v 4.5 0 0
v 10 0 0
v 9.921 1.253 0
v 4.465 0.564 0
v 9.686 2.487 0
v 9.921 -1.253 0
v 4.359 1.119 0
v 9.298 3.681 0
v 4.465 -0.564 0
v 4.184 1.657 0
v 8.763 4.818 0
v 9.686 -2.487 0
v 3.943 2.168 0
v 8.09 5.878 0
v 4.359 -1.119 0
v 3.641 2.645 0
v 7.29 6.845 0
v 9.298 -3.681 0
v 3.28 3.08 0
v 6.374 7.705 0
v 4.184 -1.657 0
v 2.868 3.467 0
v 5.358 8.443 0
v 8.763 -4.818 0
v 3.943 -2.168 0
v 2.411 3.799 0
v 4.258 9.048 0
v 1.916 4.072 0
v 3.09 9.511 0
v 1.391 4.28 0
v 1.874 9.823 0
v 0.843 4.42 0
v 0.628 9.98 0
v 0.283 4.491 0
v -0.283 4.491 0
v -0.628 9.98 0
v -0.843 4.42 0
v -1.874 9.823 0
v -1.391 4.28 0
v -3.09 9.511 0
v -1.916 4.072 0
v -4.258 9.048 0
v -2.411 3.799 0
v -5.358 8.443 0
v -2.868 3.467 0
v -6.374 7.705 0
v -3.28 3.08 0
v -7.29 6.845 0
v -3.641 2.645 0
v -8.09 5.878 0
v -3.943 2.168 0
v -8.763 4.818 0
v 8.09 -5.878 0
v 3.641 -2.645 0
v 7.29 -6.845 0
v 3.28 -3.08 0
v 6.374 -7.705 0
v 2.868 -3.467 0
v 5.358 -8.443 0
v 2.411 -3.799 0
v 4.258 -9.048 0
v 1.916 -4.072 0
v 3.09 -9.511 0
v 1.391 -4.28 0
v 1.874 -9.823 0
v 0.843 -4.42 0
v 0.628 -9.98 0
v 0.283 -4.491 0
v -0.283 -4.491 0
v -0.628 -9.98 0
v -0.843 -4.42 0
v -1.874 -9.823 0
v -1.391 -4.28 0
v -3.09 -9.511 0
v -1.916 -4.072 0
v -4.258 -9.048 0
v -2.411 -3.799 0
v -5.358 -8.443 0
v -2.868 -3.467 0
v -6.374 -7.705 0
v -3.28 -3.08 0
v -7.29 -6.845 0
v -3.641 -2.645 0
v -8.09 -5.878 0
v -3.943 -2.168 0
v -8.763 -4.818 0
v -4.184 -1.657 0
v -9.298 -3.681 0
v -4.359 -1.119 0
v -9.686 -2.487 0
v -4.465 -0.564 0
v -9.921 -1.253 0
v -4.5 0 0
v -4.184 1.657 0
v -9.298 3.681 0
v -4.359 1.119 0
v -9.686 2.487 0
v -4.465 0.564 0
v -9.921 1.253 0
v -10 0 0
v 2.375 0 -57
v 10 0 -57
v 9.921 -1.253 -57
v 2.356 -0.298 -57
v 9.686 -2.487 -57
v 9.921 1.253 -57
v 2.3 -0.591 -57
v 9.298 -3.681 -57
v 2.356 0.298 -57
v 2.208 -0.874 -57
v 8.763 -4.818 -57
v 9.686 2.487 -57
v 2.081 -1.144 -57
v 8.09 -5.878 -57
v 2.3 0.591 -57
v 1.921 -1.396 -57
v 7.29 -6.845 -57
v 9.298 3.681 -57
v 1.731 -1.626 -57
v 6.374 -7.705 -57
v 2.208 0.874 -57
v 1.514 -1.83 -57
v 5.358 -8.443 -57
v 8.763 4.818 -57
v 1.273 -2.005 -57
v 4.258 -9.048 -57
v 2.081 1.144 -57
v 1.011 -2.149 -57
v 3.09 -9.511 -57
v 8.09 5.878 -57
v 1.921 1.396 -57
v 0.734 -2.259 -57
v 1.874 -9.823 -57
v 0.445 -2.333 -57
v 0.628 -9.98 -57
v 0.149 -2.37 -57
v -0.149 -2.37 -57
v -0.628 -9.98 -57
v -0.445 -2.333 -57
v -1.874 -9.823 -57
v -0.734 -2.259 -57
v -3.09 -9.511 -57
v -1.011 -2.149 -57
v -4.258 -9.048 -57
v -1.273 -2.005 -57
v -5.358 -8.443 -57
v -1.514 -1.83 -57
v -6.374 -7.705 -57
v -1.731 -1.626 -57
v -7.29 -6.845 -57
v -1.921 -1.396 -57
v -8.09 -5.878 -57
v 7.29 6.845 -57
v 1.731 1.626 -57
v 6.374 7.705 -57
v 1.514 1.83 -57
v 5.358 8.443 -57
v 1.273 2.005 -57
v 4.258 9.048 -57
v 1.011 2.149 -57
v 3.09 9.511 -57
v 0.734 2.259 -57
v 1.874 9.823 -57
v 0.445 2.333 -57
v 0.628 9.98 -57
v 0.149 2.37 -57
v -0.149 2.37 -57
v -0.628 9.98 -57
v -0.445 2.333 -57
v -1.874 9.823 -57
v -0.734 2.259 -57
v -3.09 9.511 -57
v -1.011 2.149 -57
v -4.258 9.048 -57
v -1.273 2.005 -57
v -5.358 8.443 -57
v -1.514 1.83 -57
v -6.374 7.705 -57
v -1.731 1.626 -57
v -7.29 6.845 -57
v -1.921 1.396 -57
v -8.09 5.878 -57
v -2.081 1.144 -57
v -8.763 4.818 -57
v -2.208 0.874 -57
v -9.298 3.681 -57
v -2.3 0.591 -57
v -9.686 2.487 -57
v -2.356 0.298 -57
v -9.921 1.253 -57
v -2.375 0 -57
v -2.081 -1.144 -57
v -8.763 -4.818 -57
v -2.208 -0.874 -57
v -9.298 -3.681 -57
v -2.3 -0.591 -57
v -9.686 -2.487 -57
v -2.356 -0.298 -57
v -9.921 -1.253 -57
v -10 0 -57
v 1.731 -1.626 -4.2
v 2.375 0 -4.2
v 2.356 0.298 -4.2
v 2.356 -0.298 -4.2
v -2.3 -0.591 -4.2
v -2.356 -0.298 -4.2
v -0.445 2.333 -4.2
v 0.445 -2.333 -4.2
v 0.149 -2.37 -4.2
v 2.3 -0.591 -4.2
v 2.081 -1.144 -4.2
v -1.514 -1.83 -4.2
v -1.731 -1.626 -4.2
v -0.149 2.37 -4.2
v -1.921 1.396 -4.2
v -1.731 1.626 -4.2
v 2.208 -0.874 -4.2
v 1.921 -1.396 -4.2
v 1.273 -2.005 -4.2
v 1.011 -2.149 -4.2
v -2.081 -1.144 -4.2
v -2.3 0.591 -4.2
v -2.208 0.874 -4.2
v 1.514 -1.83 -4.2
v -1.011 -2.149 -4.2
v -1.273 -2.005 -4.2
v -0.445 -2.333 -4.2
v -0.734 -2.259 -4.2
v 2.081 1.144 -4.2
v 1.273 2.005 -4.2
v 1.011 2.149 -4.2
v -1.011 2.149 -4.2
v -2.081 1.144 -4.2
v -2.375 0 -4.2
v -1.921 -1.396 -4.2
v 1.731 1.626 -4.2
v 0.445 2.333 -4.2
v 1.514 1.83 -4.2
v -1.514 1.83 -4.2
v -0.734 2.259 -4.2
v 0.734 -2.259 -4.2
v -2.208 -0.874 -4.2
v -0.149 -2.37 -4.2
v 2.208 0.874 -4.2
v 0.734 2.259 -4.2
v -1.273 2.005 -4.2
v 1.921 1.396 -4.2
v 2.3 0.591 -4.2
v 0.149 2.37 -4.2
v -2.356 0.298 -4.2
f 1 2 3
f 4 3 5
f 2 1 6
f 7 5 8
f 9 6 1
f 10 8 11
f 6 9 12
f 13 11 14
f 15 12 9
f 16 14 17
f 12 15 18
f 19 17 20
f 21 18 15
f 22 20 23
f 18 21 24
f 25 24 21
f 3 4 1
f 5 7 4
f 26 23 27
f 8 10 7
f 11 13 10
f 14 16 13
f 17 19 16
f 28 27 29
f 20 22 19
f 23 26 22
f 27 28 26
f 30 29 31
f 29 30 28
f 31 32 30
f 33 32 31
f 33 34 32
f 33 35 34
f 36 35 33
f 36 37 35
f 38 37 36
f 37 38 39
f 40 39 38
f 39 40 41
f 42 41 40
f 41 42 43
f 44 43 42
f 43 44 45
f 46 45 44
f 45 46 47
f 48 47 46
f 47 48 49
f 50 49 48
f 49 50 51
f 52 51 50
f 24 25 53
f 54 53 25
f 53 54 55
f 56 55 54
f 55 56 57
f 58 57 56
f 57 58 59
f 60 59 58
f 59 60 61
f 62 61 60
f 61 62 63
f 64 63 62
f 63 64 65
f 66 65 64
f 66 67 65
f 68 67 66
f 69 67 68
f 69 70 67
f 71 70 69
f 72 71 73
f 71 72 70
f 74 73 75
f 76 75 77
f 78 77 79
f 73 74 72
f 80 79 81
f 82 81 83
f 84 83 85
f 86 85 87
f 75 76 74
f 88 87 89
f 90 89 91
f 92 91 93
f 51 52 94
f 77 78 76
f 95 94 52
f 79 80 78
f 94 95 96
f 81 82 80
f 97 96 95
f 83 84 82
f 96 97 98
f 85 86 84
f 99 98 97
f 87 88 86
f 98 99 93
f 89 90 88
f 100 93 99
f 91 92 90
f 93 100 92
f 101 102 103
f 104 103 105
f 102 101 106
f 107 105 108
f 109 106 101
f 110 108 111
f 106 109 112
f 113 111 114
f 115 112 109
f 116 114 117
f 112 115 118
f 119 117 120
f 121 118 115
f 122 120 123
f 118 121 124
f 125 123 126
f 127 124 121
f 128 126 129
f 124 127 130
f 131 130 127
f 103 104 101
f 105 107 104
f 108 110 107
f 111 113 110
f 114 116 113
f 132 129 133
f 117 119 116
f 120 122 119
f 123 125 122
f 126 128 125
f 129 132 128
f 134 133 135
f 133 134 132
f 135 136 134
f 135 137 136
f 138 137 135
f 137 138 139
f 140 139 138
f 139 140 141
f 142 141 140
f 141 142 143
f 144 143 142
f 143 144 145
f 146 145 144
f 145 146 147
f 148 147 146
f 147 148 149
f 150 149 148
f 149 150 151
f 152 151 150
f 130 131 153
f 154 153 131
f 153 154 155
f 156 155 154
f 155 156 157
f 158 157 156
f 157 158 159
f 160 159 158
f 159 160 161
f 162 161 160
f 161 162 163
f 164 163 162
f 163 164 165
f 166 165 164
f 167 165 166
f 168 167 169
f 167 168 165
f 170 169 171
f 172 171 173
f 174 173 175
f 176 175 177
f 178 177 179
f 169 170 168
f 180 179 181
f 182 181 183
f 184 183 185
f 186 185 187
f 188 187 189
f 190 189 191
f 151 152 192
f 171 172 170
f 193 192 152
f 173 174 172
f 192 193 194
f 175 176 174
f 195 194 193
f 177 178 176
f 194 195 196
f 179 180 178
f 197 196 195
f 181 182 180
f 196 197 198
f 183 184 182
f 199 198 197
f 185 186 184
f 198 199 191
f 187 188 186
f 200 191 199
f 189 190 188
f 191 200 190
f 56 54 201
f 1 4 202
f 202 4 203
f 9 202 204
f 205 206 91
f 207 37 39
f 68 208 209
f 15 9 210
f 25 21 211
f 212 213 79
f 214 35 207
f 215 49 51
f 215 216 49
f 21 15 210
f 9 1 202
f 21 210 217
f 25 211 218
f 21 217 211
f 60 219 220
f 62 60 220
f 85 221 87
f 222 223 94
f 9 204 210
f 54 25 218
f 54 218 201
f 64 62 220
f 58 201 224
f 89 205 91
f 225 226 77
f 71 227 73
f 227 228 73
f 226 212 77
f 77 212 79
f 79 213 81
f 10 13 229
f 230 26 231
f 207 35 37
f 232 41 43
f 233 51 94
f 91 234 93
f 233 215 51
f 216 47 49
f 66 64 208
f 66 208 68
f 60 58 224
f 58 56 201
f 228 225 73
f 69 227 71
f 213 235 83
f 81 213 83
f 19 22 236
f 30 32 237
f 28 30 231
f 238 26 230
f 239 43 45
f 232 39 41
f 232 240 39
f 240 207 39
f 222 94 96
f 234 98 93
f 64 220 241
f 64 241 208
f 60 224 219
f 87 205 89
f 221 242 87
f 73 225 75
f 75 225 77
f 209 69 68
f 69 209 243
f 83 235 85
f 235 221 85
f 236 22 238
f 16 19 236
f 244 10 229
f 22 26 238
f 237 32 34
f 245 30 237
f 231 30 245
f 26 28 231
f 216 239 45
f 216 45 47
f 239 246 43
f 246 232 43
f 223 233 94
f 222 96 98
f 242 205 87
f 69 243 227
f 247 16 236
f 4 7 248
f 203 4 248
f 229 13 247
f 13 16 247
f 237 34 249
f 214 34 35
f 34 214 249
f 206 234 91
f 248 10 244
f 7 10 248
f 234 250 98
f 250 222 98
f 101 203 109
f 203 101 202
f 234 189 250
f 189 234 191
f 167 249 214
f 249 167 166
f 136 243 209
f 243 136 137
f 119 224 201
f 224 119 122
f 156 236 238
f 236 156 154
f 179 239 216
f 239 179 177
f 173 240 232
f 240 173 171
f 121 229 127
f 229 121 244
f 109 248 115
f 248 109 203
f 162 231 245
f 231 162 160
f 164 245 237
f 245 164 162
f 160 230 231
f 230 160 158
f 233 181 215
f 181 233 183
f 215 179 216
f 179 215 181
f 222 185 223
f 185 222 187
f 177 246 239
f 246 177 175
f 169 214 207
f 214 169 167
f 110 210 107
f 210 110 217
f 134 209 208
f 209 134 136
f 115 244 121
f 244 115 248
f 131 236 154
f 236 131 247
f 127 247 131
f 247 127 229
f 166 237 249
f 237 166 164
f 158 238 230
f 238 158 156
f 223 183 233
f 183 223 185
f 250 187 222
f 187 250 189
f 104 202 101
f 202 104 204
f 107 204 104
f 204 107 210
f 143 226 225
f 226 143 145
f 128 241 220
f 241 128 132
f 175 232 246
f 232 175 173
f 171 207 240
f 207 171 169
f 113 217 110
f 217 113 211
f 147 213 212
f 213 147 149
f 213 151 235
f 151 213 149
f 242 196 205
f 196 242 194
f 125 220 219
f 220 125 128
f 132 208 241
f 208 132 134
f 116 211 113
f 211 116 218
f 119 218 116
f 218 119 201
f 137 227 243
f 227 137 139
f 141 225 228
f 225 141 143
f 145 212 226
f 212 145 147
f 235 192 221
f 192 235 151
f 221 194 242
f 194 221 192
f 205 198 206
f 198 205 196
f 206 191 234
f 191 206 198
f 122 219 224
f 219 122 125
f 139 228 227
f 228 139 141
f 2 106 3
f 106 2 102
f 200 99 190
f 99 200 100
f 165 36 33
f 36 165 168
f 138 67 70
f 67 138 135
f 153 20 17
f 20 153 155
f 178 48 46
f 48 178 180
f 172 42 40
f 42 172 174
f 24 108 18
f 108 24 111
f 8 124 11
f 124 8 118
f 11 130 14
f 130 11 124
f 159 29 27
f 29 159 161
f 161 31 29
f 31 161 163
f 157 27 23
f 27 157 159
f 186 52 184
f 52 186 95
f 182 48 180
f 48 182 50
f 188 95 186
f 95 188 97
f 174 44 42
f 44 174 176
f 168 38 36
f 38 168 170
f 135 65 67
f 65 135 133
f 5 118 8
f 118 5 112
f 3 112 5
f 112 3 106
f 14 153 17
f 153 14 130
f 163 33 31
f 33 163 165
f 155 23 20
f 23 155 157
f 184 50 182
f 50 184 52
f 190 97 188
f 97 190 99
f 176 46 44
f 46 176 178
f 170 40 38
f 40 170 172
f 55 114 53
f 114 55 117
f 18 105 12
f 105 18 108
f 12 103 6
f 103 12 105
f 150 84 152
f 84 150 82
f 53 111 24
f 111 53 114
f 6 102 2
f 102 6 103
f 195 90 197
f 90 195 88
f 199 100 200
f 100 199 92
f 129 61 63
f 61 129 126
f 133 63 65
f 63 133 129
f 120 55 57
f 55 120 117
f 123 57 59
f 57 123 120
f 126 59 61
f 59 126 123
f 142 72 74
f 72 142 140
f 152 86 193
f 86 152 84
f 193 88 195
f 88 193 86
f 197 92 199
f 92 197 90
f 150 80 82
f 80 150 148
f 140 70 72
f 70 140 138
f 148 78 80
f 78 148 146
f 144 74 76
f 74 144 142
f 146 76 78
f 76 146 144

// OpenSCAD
$fn = 50;


difference() {
	union() {
		translate(v = [0, 0, -57.0000000000]) {
			cylinder(h = 57, r = 10.0000000000);
		}
		cylinder(h = 0, r = 16.0000000000);
	}
	union() {
		translate(v = [0, 0, 0]) {
			rotate(a = [0, 0, 0]) {
				difference() {
					union() {
						#translate(v = [0, 0, -57.0000000000]) {
							cylinder(h = 57, r = 2.2500000000);
						}
						#translate(v = [0, 0, -4.2000000000]) {
							cylinder(h = 4.2000000000, r1 = 2.3750000000, r2 = 4.5000000000);
						}
						#translate(v = [0, 0, -57.0000000000]) {
							cylinder(h = 57, r = 2.3750000000);
						}
						#translate(v = [0, 0, -57.0000000000]) {
							cylinder(h = 57, r = 2.2500000000);
						}
					}
					union();
				}
			}
		}
	}
}
